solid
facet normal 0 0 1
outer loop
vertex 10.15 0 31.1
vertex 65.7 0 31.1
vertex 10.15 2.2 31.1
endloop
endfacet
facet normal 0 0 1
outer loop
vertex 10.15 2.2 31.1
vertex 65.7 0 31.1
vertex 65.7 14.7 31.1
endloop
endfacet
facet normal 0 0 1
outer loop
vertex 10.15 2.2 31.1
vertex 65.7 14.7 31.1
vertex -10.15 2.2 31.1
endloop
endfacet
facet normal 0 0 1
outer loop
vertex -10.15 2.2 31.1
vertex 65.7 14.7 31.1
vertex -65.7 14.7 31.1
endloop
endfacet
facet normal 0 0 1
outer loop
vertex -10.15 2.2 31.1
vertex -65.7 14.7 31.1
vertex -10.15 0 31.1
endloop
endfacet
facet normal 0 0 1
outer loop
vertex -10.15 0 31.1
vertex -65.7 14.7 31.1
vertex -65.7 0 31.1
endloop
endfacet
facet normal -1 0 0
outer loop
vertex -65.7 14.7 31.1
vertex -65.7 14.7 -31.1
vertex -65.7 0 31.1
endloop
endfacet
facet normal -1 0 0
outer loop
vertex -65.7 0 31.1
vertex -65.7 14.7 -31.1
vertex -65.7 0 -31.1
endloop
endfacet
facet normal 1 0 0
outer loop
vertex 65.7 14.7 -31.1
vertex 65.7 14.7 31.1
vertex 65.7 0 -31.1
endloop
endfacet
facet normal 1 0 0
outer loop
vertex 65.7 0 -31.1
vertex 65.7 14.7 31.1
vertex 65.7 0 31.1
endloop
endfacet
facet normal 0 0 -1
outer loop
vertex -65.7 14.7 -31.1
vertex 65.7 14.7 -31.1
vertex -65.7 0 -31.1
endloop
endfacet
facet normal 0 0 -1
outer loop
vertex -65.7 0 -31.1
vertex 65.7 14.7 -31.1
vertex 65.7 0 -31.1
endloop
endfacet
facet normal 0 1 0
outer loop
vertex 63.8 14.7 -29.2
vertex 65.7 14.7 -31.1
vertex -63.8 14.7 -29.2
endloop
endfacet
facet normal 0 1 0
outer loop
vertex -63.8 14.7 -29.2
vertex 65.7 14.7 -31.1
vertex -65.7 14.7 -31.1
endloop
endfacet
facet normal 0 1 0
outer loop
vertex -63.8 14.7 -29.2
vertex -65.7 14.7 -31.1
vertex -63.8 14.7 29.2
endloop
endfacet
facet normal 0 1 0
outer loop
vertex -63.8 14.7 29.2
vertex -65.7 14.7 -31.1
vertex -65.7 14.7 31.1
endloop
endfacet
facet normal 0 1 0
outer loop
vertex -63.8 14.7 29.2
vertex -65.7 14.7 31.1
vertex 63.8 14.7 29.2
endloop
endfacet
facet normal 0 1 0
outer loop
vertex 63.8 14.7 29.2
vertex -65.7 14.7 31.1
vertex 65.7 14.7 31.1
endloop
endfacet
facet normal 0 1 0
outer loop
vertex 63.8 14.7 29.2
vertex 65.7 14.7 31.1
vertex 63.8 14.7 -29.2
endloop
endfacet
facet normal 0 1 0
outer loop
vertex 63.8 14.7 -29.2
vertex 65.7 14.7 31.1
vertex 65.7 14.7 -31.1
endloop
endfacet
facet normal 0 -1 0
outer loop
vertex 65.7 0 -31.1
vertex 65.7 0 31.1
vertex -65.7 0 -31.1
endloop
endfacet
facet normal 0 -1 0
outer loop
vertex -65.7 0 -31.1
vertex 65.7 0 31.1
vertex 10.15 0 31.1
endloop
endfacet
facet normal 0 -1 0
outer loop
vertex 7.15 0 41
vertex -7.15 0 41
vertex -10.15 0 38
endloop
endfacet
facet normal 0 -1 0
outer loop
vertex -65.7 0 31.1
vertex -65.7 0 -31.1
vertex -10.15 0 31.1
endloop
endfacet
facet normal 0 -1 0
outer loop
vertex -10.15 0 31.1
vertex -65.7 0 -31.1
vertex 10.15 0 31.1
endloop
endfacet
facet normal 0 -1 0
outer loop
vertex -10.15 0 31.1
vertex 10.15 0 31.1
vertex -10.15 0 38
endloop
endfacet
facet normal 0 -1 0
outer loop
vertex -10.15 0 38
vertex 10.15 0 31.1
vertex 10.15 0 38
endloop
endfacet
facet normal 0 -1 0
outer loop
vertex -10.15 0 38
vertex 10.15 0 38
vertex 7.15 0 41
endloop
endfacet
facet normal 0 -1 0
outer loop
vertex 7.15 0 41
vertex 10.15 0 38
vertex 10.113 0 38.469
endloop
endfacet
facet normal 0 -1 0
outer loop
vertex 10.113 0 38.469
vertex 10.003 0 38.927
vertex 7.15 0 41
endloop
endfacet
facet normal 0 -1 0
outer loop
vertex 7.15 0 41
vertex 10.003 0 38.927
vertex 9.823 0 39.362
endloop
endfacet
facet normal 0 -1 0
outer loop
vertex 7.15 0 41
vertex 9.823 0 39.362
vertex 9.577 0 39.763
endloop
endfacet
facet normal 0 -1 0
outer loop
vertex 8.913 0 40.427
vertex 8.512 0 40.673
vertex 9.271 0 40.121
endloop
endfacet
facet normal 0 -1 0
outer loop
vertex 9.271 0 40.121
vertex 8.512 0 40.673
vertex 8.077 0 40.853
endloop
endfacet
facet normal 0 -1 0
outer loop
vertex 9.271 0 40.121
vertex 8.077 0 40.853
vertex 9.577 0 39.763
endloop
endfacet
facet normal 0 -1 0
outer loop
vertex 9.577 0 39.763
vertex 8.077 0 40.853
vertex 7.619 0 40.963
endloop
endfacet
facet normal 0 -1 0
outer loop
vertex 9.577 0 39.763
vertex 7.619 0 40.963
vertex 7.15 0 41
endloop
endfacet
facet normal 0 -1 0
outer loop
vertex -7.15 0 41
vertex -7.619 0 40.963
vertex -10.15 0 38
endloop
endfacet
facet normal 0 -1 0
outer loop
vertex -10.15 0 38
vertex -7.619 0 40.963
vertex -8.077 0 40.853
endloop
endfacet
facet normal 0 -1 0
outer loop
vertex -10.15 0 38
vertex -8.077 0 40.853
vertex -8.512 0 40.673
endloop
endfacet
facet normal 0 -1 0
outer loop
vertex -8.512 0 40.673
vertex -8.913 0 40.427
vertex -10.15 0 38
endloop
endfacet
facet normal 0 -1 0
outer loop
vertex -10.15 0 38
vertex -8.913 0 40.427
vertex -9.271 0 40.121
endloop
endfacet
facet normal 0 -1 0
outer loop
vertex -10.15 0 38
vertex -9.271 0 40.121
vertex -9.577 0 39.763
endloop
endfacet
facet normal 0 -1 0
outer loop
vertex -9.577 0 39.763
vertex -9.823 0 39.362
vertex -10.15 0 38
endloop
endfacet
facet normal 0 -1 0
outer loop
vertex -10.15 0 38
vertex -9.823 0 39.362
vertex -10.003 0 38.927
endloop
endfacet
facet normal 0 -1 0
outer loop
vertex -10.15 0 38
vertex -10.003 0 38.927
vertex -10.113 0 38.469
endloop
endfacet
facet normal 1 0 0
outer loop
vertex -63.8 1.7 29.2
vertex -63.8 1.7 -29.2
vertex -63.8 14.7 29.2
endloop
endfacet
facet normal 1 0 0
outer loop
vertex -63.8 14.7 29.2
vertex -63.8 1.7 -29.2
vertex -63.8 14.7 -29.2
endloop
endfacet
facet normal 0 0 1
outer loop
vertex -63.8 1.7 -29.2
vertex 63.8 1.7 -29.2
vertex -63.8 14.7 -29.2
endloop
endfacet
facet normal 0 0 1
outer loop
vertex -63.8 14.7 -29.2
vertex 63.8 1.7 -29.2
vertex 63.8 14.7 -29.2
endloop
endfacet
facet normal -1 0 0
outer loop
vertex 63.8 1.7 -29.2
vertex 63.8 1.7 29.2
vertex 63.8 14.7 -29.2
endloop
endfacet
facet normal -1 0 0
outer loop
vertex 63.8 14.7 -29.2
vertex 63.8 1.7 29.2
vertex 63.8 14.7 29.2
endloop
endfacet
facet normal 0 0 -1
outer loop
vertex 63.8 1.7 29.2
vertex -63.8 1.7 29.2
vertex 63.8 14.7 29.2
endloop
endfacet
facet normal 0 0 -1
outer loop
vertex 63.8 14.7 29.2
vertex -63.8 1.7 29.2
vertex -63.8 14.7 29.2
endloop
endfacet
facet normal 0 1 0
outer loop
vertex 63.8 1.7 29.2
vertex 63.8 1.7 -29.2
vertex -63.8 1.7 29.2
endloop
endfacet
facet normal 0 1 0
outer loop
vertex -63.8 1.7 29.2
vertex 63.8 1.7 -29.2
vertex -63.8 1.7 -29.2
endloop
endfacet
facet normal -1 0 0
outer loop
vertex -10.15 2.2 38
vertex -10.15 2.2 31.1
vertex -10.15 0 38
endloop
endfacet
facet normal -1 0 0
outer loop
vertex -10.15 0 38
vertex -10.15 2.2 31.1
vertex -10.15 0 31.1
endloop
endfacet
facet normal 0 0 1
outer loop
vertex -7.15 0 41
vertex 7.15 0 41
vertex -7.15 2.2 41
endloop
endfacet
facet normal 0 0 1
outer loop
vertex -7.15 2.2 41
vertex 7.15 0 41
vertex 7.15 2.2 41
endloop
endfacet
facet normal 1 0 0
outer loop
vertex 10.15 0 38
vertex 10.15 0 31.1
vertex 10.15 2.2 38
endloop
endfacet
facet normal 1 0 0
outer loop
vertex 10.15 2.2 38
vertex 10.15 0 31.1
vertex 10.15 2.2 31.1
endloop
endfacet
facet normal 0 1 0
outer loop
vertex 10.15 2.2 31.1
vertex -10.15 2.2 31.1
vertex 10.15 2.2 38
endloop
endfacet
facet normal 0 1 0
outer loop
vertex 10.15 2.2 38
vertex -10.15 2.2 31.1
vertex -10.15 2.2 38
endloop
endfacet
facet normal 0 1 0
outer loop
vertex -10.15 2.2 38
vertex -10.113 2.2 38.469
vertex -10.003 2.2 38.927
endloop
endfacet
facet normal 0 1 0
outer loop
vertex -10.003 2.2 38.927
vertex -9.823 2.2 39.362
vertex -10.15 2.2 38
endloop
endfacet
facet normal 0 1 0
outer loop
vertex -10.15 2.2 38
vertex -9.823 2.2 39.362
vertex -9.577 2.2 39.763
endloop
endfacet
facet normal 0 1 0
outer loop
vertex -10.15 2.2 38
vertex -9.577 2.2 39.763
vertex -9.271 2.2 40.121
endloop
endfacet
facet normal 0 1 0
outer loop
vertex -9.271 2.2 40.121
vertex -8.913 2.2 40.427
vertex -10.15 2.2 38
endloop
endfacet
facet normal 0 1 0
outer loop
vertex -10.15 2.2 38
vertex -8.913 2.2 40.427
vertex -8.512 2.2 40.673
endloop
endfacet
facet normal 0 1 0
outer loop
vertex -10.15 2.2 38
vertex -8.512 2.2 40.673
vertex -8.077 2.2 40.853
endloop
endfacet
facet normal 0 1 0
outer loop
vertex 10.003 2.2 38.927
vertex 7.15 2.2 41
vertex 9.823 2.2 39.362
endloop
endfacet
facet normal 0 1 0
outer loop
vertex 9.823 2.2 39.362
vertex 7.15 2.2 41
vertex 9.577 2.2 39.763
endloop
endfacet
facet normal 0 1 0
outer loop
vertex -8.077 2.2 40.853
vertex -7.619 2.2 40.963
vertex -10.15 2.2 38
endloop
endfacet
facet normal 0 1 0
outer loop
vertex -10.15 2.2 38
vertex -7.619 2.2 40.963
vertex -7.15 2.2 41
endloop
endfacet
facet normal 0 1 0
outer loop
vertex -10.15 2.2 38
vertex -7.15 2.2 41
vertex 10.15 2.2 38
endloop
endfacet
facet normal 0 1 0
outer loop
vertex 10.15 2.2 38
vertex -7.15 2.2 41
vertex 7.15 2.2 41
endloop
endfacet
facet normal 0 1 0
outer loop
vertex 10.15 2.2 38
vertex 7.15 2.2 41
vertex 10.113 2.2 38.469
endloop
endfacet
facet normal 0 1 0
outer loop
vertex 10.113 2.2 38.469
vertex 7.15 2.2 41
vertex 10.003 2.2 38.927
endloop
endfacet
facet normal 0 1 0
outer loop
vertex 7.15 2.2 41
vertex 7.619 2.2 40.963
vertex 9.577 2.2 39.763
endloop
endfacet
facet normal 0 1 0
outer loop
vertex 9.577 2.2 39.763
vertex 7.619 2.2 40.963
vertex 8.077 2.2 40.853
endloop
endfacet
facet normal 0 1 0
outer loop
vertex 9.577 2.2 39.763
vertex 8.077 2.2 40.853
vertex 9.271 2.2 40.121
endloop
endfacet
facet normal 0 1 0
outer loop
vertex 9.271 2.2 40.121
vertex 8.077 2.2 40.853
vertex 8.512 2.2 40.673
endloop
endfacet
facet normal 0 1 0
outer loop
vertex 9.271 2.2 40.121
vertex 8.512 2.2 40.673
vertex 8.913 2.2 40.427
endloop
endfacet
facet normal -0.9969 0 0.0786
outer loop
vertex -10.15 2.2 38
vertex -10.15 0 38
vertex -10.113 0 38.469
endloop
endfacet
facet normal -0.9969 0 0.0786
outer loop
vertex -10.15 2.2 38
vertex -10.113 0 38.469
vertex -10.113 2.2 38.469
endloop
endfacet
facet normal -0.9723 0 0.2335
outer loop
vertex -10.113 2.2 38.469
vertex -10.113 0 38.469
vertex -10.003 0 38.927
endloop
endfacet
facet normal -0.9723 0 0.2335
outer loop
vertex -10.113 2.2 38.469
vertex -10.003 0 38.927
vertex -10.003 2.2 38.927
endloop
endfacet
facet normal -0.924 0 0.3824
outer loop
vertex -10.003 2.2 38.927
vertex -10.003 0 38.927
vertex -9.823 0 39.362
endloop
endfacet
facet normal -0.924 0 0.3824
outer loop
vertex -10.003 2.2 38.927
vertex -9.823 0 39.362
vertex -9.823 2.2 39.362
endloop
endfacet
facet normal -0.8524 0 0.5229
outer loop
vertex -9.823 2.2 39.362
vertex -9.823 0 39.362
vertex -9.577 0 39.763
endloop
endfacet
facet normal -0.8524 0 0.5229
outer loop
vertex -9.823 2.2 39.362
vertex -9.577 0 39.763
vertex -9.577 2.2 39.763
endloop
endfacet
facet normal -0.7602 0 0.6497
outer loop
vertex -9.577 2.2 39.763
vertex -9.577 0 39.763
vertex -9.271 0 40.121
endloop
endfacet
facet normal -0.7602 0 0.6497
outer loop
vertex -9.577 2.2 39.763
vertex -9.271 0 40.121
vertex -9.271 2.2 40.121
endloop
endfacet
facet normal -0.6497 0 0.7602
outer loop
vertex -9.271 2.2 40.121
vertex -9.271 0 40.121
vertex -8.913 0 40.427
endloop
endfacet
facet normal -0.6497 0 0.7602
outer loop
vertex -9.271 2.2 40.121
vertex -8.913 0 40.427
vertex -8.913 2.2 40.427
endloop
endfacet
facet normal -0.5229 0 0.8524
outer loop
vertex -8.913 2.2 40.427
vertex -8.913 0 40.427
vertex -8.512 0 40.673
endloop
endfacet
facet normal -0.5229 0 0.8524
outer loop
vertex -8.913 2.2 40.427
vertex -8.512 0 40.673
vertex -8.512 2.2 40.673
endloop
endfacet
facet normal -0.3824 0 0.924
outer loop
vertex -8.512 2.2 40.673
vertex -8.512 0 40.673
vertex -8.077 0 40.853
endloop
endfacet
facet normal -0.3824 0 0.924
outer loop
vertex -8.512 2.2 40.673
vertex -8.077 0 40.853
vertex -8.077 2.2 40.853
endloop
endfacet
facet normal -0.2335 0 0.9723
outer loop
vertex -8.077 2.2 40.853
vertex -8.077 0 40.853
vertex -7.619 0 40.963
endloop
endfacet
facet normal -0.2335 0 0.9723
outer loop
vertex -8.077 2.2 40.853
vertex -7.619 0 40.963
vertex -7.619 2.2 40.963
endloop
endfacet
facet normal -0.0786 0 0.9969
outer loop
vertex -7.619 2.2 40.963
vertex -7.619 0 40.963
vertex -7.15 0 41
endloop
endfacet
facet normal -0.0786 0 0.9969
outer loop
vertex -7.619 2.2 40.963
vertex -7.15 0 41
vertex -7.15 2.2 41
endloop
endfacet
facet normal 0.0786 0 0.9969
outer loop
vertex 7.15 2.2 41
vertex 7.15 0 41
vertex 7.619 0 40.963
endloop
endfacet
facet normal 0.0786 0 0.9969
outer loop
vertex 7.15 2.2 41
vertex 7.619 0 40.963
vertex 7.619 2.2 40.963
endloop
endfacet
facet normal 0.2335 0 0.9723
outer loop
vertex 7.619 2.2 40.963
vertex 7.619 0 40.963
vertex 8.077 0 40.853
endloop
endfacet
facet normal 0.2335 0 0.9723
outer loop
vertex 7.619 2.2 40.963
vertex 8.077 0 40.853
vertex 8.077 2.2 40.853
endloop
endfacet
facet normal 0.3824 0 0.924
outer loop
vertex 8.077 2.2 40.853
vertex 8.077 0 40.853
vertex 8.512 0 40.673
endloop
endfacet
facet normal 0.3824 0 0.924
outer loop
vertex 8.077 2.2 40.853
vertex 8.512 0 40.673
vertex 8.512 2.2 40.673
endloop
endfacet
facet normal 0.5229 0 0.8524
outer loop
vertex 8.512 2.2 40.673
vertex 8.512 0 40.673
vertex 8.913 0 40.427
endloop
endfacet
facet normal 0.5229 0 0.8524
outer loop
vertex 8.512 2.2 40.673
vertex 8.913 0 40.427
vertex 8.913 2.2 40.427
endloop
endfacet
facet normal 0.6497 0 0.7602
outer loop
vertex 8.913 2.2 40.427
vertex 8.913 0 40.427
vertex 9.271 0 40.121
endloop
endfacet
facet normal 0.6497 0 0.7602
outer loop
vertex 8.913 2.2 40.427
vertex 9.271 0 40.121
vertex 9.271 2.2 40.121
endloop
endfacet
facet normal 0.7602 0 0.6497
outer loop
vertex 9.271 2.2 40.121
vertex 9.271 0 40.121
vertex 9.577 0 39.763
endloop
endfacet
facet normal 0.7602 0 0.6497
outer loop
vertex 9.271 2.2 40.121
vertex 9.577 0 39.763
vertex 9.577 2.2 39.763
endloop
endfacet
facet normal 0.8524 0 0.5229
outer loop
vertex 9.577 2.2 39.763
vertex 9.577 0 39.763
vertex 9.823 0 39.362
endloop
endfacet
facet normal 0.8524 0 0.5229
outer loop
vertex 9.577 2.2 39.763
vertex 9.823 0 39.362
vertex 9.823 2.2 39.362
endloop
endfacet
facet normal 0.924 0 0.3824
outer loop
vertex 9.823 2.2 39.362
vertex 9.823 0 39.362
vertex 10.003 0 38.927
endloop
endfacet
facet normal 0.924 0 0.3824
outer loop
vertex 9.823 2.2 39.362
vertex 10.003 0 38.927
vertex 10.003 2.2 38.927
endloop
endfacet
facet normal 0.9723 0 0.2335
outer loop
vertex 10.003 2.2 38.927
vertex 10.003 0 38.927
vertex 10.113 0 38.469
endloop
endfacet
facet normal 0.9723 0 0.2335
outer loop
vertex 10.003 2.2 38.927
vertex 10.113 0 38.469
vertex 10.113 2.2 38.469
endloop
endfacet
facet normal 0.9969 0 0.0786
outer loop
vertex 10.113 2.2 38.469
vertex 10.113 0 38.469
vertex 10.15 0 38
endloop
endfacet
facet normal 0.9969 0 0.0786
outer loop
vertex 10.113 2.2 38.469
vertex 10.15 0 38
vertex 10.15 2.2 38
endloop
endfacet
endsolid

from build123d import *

# Parameters (mm, degrees)
SKETCH2_W           = 131.4
SKETCH2_H           = 62.2
BOSS_EXTRUDE1_DEPTH = 14.7
SKETCH3_W           = 127.6
SKETCH3_H           = 58.4
CUT_EXTRUDE1_DEPTH  = 13
SKETCH4_W           = 20.3
SKETCH4_H           = 9.9
BOSS_EXTRUDE2_DEPTH = 2.2
FILLET1_R           = 3


with BuildPart() as part:
    # Sketch2 → Boss-Extrude1 (new body)
    with BuildSketch(Plane(origin=(0, 0, 0), x_dir=(1, 0, 0), z_dir=(0, 1, 0))):
        Rectangle(SKETCH2_W, SKETCH2_H)
    extrude(amount=BOSS_EXTRUDE1_DEPTH)

    # Sketch3 → Cut-Extrude1 (cut)
    with BuildSketch(Plane(origin=(0, 14.7, 0), x_dir=(1, 0, 0), z_dir=(0, 1, 0))):
        Rectangle(SKETCH3_W, SKETCH3_H)
    extrude(amount=-CUT_EXTRUDE1_DEPTH, mode=Mode.SUBTRACT)

    # Sketch4 → Boss-Extrude2 (add)
    with BuildSketch(Plane.XZ):
        with Locations((0, 36.05)):
            Rectangle(SKETCH4_W, SKETCH4_H)
    extrude(amount=-BOSS_EXTRUDE2_DEPTH)

    # Fillet1
    fillet1_edges = [part.edges().sort_by_distance(p)[0] for p in [
        (-10.15, 1.1, 41),
        (10.15, 1.1, 41),
    ]]
    fillet(fillet1_edges, radius=FILLET1_R)


solid = part.part
